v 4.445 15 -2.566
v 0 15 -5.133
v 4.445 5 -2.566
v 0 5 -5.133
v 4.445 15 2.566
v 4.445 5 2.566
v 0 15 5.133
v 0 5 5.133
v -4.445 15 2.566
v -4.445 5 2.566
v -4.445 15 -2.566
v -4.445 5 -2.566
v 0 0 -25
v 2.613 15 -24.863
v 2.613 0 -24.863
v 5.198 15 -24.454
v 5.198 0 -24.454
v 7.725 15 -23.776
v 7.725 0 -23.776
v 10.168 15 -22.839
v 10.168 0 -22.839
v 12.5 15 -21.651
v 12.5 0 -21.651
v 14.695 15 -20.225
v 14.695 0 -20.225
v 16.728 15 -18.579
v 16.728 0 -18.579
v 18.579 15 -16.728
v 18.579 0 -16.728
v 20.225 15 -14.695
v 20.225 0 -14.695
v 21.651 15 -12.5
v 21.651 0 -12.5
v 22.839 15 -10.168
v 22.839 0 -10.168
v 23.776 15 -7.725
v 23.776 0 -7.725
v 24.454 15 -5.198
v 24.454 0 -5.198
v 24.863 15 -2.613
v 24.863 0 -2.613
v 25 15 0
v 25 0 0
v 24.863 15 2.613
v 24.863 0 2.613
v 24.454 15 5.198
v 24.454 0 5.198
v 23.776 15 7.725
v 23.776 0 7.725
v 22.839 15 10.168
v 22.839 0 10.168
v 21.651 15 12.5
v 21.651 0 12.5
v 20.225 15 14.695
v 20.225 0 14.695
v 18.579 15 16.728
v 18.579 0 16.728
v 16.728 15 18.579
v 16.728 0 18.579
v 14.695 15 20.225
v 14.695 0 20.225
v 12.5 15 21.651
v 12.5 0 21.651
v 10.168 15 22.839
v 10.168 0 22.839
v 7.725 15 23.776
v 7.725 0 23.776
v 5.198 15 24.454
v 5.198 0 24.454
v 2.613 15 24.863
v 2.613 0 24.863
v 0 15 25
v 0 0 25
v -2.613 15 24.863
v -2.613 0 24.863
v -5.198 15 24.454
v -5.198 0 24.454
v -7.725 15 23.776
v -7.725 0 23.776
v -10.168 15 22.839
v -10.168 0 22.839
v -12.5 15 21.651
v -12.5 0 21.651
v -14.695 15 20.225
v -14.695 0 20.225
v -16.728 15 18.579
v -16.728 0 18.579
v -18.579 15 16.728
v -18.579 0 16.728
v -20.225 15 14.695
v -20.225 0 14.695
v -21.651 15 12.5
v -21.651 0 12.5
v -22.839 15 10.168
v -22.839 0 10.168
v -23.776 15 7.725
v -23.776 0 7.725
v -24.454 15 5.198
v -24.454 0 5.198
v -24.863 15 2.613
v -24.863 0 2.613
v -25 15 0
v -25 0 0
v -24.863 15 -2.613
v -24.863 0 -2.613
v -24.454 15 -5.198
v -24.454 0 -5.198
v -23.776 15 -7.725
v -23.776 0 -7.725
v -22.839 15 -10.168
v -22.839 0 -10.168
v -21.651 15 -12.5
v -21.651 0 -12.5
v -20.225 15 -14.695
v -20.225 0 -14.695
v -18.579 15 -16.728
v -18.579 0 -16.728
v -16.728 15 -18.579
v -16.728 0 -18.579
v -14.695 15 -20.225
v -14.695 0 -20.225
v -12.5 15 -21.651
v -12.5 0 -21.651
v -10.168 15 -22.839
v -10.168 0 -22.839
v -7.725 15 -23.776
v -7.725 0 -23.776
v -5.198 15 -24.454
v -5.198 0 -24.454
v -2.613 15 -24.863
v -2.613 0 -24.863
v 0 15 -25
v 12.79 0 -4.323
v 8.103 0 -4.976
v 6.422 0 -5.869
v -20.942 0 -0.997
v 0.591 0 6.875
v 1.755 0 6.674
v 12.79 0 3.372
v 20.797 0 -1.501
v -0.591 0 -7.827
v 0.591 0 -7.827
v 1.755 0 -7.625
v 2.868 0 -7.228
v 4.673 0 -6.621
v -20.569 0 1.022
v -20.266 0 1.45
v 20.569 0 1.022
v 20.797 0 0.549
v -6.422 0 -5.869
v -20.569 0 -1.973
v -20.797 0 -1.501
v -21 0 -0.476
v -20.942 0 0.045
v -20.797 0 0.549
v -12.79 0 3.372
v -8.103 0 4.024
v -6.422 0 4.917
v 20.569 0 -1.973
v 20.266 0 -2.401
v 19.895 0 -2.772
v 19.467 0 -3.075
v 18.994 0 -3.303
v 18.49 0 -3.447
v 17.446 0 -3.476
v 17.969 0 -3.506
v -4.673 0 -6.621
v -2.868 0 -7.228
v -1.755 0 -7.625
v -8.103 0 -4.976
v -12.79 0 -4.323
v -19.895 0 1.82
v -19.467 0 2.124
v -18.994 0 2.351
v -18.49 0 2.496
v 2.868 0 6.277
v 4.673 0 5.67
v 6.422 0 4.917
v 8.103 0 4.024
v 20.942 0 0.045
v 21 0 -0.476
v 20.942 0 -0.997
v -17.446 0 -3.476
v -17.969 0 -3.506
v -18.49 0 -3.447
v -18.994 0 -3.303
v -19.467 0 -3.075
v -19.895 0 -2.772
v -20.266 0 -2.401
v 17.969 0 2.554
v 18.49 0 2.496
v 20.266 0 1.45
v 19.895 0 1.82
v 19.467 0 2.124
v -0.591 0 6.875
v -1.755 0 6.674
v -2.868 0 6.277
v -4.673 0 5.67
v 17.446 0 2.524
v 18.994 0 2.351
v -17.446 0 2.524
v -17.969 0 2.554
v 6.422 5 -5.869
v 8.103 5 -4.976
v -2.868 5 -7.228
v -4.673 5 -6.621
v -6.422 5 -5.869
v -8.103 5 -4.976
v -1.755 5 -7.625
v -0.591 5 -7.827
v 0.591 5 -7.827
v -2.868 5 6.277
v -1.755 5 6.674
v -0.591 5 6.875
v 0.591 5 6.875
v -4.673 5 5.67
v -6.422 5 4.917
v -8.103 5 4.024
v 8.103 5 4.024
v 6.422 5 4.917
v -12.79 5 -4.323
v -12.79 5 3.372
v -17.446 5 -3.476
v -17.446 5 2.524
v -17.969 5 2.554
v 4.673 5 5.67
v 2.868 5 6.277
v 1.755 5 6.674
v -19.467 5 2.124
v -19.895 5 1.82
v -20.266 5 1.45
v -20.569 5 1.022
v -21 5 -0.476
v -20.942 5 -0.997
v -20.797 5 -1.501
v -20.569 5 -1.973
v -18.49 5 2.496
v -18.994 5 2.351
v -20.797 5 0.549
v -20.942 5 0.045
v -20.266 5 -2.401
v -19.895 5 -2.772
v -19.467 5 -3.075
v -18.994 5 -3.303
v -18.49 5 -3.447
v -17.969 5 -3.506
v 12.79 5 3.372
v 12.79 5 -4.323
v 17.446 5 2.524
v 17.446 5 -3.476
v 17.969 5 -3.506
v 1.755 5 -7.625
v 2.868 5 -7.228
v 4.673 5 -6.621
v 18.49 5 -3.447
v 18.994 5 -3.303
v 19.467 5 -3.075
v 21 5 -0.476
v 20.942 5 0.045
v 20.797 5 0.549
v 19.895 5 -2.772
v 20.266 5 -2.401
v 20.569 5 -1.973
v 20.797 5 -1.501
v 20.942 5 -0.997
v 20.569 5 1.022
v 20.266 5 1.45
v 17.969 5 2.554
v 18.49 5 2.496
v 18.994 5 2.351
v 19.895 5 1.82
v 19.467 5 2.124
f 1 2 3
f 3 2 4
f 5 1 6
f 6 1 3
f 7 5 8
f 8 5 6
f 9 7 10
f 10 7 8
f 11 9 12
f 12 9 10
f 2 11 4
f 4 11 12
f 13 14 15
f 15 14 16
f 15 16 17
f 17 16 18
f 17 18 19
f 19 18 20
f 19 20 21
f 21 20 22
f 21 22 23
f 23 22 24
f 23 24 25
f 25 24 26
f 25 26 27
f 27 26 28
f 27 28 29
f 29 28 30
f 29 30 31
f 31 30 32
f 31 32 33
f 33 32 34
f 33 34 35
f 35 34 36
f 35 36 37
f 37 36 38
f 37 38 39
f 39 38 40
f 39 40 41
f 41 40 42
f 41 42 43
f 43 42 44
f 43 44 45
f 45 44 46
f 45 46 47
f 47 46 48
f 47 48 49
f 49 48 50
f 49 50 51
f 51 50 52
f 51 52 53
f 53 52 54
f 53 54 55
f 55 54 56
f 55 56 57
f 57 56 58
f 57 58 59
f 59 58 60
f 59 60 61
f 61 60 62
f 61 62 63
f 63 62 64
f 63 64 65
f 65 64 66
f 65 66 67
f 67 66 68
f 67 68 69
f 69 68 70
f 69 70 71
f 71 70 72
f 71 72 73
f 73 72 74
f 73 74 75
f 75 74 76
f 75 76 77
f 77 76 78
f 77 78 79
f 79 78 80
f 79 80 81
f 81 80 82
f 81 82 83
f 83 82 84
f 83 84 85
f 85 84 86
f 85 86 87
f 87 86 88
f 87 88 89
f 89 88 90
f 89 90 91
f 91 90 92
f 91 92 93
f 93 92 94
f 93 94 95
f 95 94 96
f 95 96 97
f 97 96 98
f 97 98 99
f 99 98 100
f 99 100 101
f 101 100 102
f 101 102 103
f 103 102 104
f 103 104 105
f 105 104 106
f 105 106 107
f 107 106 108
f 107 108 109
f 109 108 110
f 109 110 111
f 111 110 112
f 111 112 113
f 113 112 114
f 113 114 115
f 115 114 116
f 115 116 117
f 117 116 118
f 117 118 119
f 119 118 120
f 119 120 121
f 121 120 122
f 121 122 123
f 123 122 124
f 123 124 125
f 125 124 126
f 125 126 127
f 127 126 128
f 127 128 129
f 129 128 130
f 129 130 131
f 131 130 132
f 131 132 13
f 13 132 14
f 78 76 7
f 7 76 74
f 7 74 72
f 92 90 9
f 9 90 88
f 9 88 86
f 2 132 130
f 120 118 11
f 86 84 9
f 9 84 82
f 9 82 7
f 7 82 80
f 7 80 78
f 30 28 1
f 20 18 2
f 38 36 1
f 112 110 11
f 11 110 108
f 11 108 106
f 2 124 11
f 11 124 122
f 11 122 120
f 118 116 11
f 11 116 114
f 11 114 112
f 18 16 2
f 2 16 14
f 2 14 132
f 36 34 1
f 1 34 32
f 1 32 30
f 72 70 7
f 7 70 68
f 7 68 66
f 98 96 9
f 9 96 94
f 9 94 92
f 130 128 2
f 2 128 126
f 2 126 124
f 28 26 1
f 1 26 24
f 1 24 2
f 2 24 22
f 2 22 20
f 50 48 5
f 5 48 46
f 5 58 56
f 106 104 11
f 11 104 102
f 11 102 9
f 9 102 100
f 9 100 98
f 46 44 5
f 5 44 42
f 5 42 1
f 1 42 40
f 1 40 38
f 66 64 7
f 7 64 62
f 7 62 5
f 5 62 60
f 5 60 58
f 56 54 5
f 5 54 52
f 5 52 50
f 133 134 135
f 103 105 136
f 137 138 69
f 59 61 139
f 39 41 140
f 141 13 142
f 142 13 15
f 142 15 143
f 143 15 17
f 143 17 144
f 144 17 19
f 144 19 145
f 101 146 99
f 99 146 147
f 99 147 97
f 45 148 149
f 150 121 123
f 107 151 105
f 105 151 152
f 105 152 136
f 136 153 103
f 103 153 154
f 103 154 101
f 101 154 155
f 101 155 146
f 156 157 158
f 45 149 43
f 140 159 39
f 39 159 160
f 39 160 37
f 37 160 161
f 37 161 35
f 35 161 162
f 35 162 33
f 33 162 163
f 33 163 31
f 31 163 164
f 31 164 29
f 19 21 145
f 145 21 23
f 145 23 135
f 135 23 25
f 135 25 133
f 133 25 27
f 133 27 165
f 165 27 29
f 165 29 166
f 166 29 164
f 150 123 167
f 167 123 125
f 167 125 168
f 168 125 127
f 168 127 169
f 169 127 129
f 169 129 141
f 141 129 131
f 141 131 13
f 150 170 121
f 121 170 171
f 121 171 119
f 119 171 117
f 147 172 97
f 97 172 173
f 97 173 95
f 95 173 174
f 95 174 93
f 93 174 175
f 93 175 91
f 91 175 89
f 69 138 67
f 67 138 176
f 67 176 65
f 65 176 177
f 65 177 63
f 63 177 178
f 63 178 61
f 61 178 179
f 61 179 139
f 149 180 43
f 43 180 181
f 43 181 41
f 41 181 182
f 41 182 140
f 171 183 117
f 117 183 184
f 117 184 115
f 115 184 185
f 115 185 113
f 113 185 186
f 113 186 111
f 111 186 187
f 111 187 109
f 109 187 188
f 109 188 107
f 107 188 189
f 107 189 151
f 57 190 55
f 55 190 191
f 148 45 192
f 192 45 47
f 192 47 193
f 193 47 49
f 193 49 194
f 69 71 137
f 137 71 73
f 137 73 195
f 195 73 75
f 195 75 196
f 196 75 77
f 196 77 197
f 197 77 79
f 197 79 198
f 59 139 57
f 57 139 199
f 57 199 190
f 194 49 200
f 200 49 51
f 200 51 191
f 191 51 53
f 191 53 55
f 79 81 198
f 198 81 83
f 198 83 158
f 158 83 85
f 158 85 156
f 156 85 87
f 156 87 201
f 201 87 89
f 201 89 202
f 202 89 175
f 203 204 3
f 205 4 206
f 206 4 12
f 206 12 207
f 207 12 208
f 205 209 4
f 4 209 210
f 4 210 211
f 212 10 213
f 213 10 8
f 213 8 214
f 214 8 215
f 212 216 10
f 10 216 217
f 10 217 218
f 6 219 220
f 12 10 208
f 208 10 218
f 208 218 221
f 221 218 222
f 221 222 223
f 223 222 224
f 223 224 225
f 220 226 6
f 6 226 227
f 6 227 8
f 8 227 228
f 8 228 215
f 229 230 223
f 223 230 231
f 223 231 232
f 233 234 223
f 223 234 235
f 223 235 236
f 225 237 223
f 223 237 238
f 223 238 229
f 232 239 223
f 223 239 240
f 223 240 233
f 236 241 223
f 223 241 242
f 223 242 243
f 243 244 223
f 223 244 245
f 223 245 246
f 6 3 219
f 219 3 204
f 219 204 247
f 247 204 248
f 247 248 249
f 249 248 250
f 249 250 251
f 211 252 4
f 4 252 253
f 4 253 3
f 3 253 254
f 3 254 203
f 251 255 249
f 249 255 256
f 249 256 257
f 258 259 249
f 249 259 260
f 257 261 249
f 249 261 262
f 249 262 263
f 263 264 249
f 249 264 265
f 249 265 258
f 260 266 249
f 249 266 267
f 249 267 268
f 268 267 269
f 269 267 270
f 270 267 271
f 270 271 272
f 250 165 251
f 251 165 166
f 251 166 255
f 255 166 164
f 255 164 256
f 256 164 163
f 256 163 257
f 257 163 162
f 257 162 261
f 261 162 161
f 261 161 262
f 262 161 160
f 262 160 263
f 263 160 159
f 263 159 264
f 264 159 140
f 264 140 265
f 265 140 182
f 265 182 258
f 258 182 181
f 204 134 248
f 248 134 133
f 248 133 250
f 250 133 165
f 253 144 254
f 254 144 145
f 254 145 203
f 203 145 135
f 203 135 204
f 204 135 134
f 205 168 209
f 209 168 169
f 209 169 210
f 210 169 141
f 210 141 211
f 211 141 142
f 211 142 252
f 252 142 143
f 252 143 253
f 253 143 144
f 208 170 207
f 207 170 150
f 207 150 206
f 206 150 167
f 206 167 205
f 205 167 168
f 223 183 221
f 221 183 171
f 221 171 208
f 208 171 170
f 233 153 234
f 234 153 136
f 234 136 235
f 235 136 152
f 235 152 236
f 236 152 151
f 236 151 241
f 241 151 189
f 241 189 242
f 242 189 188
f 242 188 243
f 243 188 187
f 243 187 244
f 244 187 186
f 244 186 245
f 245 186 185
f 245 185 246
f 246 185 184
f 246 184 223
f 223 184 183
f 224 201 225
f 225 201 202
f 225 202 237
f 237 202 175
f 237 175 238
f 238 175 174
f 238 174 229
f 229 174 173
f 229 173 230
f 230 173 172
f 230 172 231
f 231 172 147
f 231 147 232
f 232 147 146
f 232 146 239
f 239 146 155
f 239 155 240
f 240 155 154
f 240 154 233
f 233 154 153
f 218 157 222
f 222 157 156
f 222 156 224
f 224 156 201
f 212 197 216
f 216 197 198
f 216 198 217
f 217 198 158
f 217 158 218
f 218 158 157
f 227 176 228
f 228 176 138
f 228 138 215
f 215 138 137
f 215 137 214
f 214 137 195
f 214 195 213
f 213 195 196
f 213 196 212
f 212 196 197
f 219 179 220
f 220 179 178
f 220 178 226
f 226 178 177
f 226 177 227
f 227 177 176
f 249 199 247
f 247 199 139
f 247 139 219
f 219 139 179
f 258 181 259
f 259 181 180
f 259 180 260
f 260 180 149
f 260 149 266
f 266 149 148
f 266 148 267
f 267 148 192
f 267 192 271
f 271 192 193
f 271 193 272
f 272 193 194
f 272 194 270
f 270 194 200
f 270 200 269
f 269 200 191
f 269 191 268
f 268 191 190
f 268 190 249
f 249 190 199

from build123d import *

# Parameters (mm, degrees)
SKETCH1_R           = 25
BOSS_EXTRUDE1_DEPTH = 15
CUT_EXTRUDE2_REACH  = 40.406
CUT_EXTRUDE3_DEPTH  = 5


with BuildPart() as part:
    # Sketch1 → Boss-Extrude1 (new body)
    with BuildSketch(Plane(origin=(0, 0, 0), x_dir=(1, 0, 0), z_dir=(0, 1, 0))):
        with Locations(Location((0, 0, 0), (0, 0, 270))):
            Circle(SKETCH1_R)
    extrude(amount=BOSS_EXTRUDE1_DEPTH)

    # Sketch7 → Cut-Extrude2 (cut, up to next)
    with BuildSketch(Plane(origin=(0, 15, 0), x_dir=(1, 0, 0), z_dir=(0, 1, 0)), mode=Mode.PRIVATE) as cut_extrude2_sk1:
        Polygon((0, 5.132643893), (-4.445, 2.566321947), (-4.445, -2.566321947), (0, -5.132643893), (4.445, -2.566321947), (4.445, 2.566321947), align=None)
    cut_extrude2_tool1 = extrude(cut_extrude2_sk1.sketch, amount=-CUT_EXTRUDE2_REACH, mode=Mode.PRIVATE) & part.part
    add(cut_extrude2_tool1.solids().sort_by_distance((0, 15, 0))[0], mode=Mode.SUBTRACT)

    # Sketch8 → Cut-Extrude3 (cut)
    with BuildSketch(Plane.XZ):
        with BuildLine():
            ThreePointArc((2.867832451, 6.276606431), (5.55485913, 5.311303559), (8.103473198, 4.024257195))
            ThreePointArc((8.103473198, 4.024257195), (12.790122891, 3.37163327), (17.445502266, 2.524257195))
            ThreePointArc((17.445502266, 2.524257195), (19.894779582, 1.820498395), (21, -0.475742805))
            ThreePointArc((21, -0.475742805), (19.894779582, -2.771984005), (17.445502266, -3.475742805))
            ThreePointArc((17.445502266, -3.475742805), (12.790122891, -4.32311888), (8.103473198, -4.975742805))
            ThreePointArc((8.103473198, -4.975742805), (5.55485913, -6.262789168), (2.867832451, -7.22809204))
            ThreePointArc((2.867832451, -7.22809204), (0, -7.852228414), (-2.867832451, -7.22809204))
            ThreePointArc((-2.867832451, -7.22809204), (-5.55485913, -6.262789168), (-8.103473198, -4.975742805))
            ThreePointArc((-8.103473198, -4.975742805), (-12.790122891, -4.32311888), (-17.445502266, -3.475742805))
            ThreePointArc((-17.445502266, -3.475742805), (-19.894779582, -2.771984005), (-21, -0.475742805))
            ThreePointArc((-21, -0.475742805), (-19.894779582, 1.820498395), (-17.445502266, 2.524257195))
            ThreePointArc((-17.445502266, 2.524257195), (-12.790122891, 3.37163327), (-8.103473198, 4.024257195))
            ThreePointArc((-8.103473198, 4.024257195), (-5.55485913, 5.311303559), (-2.867832451, 6.276606431))
            ThreePointArc((-2.867832451, 6.276606431), (0, 6.900742805), (2.867832451, 6.276606431))
        make_face()
    extrude(amount=-CUT_EXTRUDE3_DEPTH, mode=Mode.SUBTRACT)


solid = part.part
